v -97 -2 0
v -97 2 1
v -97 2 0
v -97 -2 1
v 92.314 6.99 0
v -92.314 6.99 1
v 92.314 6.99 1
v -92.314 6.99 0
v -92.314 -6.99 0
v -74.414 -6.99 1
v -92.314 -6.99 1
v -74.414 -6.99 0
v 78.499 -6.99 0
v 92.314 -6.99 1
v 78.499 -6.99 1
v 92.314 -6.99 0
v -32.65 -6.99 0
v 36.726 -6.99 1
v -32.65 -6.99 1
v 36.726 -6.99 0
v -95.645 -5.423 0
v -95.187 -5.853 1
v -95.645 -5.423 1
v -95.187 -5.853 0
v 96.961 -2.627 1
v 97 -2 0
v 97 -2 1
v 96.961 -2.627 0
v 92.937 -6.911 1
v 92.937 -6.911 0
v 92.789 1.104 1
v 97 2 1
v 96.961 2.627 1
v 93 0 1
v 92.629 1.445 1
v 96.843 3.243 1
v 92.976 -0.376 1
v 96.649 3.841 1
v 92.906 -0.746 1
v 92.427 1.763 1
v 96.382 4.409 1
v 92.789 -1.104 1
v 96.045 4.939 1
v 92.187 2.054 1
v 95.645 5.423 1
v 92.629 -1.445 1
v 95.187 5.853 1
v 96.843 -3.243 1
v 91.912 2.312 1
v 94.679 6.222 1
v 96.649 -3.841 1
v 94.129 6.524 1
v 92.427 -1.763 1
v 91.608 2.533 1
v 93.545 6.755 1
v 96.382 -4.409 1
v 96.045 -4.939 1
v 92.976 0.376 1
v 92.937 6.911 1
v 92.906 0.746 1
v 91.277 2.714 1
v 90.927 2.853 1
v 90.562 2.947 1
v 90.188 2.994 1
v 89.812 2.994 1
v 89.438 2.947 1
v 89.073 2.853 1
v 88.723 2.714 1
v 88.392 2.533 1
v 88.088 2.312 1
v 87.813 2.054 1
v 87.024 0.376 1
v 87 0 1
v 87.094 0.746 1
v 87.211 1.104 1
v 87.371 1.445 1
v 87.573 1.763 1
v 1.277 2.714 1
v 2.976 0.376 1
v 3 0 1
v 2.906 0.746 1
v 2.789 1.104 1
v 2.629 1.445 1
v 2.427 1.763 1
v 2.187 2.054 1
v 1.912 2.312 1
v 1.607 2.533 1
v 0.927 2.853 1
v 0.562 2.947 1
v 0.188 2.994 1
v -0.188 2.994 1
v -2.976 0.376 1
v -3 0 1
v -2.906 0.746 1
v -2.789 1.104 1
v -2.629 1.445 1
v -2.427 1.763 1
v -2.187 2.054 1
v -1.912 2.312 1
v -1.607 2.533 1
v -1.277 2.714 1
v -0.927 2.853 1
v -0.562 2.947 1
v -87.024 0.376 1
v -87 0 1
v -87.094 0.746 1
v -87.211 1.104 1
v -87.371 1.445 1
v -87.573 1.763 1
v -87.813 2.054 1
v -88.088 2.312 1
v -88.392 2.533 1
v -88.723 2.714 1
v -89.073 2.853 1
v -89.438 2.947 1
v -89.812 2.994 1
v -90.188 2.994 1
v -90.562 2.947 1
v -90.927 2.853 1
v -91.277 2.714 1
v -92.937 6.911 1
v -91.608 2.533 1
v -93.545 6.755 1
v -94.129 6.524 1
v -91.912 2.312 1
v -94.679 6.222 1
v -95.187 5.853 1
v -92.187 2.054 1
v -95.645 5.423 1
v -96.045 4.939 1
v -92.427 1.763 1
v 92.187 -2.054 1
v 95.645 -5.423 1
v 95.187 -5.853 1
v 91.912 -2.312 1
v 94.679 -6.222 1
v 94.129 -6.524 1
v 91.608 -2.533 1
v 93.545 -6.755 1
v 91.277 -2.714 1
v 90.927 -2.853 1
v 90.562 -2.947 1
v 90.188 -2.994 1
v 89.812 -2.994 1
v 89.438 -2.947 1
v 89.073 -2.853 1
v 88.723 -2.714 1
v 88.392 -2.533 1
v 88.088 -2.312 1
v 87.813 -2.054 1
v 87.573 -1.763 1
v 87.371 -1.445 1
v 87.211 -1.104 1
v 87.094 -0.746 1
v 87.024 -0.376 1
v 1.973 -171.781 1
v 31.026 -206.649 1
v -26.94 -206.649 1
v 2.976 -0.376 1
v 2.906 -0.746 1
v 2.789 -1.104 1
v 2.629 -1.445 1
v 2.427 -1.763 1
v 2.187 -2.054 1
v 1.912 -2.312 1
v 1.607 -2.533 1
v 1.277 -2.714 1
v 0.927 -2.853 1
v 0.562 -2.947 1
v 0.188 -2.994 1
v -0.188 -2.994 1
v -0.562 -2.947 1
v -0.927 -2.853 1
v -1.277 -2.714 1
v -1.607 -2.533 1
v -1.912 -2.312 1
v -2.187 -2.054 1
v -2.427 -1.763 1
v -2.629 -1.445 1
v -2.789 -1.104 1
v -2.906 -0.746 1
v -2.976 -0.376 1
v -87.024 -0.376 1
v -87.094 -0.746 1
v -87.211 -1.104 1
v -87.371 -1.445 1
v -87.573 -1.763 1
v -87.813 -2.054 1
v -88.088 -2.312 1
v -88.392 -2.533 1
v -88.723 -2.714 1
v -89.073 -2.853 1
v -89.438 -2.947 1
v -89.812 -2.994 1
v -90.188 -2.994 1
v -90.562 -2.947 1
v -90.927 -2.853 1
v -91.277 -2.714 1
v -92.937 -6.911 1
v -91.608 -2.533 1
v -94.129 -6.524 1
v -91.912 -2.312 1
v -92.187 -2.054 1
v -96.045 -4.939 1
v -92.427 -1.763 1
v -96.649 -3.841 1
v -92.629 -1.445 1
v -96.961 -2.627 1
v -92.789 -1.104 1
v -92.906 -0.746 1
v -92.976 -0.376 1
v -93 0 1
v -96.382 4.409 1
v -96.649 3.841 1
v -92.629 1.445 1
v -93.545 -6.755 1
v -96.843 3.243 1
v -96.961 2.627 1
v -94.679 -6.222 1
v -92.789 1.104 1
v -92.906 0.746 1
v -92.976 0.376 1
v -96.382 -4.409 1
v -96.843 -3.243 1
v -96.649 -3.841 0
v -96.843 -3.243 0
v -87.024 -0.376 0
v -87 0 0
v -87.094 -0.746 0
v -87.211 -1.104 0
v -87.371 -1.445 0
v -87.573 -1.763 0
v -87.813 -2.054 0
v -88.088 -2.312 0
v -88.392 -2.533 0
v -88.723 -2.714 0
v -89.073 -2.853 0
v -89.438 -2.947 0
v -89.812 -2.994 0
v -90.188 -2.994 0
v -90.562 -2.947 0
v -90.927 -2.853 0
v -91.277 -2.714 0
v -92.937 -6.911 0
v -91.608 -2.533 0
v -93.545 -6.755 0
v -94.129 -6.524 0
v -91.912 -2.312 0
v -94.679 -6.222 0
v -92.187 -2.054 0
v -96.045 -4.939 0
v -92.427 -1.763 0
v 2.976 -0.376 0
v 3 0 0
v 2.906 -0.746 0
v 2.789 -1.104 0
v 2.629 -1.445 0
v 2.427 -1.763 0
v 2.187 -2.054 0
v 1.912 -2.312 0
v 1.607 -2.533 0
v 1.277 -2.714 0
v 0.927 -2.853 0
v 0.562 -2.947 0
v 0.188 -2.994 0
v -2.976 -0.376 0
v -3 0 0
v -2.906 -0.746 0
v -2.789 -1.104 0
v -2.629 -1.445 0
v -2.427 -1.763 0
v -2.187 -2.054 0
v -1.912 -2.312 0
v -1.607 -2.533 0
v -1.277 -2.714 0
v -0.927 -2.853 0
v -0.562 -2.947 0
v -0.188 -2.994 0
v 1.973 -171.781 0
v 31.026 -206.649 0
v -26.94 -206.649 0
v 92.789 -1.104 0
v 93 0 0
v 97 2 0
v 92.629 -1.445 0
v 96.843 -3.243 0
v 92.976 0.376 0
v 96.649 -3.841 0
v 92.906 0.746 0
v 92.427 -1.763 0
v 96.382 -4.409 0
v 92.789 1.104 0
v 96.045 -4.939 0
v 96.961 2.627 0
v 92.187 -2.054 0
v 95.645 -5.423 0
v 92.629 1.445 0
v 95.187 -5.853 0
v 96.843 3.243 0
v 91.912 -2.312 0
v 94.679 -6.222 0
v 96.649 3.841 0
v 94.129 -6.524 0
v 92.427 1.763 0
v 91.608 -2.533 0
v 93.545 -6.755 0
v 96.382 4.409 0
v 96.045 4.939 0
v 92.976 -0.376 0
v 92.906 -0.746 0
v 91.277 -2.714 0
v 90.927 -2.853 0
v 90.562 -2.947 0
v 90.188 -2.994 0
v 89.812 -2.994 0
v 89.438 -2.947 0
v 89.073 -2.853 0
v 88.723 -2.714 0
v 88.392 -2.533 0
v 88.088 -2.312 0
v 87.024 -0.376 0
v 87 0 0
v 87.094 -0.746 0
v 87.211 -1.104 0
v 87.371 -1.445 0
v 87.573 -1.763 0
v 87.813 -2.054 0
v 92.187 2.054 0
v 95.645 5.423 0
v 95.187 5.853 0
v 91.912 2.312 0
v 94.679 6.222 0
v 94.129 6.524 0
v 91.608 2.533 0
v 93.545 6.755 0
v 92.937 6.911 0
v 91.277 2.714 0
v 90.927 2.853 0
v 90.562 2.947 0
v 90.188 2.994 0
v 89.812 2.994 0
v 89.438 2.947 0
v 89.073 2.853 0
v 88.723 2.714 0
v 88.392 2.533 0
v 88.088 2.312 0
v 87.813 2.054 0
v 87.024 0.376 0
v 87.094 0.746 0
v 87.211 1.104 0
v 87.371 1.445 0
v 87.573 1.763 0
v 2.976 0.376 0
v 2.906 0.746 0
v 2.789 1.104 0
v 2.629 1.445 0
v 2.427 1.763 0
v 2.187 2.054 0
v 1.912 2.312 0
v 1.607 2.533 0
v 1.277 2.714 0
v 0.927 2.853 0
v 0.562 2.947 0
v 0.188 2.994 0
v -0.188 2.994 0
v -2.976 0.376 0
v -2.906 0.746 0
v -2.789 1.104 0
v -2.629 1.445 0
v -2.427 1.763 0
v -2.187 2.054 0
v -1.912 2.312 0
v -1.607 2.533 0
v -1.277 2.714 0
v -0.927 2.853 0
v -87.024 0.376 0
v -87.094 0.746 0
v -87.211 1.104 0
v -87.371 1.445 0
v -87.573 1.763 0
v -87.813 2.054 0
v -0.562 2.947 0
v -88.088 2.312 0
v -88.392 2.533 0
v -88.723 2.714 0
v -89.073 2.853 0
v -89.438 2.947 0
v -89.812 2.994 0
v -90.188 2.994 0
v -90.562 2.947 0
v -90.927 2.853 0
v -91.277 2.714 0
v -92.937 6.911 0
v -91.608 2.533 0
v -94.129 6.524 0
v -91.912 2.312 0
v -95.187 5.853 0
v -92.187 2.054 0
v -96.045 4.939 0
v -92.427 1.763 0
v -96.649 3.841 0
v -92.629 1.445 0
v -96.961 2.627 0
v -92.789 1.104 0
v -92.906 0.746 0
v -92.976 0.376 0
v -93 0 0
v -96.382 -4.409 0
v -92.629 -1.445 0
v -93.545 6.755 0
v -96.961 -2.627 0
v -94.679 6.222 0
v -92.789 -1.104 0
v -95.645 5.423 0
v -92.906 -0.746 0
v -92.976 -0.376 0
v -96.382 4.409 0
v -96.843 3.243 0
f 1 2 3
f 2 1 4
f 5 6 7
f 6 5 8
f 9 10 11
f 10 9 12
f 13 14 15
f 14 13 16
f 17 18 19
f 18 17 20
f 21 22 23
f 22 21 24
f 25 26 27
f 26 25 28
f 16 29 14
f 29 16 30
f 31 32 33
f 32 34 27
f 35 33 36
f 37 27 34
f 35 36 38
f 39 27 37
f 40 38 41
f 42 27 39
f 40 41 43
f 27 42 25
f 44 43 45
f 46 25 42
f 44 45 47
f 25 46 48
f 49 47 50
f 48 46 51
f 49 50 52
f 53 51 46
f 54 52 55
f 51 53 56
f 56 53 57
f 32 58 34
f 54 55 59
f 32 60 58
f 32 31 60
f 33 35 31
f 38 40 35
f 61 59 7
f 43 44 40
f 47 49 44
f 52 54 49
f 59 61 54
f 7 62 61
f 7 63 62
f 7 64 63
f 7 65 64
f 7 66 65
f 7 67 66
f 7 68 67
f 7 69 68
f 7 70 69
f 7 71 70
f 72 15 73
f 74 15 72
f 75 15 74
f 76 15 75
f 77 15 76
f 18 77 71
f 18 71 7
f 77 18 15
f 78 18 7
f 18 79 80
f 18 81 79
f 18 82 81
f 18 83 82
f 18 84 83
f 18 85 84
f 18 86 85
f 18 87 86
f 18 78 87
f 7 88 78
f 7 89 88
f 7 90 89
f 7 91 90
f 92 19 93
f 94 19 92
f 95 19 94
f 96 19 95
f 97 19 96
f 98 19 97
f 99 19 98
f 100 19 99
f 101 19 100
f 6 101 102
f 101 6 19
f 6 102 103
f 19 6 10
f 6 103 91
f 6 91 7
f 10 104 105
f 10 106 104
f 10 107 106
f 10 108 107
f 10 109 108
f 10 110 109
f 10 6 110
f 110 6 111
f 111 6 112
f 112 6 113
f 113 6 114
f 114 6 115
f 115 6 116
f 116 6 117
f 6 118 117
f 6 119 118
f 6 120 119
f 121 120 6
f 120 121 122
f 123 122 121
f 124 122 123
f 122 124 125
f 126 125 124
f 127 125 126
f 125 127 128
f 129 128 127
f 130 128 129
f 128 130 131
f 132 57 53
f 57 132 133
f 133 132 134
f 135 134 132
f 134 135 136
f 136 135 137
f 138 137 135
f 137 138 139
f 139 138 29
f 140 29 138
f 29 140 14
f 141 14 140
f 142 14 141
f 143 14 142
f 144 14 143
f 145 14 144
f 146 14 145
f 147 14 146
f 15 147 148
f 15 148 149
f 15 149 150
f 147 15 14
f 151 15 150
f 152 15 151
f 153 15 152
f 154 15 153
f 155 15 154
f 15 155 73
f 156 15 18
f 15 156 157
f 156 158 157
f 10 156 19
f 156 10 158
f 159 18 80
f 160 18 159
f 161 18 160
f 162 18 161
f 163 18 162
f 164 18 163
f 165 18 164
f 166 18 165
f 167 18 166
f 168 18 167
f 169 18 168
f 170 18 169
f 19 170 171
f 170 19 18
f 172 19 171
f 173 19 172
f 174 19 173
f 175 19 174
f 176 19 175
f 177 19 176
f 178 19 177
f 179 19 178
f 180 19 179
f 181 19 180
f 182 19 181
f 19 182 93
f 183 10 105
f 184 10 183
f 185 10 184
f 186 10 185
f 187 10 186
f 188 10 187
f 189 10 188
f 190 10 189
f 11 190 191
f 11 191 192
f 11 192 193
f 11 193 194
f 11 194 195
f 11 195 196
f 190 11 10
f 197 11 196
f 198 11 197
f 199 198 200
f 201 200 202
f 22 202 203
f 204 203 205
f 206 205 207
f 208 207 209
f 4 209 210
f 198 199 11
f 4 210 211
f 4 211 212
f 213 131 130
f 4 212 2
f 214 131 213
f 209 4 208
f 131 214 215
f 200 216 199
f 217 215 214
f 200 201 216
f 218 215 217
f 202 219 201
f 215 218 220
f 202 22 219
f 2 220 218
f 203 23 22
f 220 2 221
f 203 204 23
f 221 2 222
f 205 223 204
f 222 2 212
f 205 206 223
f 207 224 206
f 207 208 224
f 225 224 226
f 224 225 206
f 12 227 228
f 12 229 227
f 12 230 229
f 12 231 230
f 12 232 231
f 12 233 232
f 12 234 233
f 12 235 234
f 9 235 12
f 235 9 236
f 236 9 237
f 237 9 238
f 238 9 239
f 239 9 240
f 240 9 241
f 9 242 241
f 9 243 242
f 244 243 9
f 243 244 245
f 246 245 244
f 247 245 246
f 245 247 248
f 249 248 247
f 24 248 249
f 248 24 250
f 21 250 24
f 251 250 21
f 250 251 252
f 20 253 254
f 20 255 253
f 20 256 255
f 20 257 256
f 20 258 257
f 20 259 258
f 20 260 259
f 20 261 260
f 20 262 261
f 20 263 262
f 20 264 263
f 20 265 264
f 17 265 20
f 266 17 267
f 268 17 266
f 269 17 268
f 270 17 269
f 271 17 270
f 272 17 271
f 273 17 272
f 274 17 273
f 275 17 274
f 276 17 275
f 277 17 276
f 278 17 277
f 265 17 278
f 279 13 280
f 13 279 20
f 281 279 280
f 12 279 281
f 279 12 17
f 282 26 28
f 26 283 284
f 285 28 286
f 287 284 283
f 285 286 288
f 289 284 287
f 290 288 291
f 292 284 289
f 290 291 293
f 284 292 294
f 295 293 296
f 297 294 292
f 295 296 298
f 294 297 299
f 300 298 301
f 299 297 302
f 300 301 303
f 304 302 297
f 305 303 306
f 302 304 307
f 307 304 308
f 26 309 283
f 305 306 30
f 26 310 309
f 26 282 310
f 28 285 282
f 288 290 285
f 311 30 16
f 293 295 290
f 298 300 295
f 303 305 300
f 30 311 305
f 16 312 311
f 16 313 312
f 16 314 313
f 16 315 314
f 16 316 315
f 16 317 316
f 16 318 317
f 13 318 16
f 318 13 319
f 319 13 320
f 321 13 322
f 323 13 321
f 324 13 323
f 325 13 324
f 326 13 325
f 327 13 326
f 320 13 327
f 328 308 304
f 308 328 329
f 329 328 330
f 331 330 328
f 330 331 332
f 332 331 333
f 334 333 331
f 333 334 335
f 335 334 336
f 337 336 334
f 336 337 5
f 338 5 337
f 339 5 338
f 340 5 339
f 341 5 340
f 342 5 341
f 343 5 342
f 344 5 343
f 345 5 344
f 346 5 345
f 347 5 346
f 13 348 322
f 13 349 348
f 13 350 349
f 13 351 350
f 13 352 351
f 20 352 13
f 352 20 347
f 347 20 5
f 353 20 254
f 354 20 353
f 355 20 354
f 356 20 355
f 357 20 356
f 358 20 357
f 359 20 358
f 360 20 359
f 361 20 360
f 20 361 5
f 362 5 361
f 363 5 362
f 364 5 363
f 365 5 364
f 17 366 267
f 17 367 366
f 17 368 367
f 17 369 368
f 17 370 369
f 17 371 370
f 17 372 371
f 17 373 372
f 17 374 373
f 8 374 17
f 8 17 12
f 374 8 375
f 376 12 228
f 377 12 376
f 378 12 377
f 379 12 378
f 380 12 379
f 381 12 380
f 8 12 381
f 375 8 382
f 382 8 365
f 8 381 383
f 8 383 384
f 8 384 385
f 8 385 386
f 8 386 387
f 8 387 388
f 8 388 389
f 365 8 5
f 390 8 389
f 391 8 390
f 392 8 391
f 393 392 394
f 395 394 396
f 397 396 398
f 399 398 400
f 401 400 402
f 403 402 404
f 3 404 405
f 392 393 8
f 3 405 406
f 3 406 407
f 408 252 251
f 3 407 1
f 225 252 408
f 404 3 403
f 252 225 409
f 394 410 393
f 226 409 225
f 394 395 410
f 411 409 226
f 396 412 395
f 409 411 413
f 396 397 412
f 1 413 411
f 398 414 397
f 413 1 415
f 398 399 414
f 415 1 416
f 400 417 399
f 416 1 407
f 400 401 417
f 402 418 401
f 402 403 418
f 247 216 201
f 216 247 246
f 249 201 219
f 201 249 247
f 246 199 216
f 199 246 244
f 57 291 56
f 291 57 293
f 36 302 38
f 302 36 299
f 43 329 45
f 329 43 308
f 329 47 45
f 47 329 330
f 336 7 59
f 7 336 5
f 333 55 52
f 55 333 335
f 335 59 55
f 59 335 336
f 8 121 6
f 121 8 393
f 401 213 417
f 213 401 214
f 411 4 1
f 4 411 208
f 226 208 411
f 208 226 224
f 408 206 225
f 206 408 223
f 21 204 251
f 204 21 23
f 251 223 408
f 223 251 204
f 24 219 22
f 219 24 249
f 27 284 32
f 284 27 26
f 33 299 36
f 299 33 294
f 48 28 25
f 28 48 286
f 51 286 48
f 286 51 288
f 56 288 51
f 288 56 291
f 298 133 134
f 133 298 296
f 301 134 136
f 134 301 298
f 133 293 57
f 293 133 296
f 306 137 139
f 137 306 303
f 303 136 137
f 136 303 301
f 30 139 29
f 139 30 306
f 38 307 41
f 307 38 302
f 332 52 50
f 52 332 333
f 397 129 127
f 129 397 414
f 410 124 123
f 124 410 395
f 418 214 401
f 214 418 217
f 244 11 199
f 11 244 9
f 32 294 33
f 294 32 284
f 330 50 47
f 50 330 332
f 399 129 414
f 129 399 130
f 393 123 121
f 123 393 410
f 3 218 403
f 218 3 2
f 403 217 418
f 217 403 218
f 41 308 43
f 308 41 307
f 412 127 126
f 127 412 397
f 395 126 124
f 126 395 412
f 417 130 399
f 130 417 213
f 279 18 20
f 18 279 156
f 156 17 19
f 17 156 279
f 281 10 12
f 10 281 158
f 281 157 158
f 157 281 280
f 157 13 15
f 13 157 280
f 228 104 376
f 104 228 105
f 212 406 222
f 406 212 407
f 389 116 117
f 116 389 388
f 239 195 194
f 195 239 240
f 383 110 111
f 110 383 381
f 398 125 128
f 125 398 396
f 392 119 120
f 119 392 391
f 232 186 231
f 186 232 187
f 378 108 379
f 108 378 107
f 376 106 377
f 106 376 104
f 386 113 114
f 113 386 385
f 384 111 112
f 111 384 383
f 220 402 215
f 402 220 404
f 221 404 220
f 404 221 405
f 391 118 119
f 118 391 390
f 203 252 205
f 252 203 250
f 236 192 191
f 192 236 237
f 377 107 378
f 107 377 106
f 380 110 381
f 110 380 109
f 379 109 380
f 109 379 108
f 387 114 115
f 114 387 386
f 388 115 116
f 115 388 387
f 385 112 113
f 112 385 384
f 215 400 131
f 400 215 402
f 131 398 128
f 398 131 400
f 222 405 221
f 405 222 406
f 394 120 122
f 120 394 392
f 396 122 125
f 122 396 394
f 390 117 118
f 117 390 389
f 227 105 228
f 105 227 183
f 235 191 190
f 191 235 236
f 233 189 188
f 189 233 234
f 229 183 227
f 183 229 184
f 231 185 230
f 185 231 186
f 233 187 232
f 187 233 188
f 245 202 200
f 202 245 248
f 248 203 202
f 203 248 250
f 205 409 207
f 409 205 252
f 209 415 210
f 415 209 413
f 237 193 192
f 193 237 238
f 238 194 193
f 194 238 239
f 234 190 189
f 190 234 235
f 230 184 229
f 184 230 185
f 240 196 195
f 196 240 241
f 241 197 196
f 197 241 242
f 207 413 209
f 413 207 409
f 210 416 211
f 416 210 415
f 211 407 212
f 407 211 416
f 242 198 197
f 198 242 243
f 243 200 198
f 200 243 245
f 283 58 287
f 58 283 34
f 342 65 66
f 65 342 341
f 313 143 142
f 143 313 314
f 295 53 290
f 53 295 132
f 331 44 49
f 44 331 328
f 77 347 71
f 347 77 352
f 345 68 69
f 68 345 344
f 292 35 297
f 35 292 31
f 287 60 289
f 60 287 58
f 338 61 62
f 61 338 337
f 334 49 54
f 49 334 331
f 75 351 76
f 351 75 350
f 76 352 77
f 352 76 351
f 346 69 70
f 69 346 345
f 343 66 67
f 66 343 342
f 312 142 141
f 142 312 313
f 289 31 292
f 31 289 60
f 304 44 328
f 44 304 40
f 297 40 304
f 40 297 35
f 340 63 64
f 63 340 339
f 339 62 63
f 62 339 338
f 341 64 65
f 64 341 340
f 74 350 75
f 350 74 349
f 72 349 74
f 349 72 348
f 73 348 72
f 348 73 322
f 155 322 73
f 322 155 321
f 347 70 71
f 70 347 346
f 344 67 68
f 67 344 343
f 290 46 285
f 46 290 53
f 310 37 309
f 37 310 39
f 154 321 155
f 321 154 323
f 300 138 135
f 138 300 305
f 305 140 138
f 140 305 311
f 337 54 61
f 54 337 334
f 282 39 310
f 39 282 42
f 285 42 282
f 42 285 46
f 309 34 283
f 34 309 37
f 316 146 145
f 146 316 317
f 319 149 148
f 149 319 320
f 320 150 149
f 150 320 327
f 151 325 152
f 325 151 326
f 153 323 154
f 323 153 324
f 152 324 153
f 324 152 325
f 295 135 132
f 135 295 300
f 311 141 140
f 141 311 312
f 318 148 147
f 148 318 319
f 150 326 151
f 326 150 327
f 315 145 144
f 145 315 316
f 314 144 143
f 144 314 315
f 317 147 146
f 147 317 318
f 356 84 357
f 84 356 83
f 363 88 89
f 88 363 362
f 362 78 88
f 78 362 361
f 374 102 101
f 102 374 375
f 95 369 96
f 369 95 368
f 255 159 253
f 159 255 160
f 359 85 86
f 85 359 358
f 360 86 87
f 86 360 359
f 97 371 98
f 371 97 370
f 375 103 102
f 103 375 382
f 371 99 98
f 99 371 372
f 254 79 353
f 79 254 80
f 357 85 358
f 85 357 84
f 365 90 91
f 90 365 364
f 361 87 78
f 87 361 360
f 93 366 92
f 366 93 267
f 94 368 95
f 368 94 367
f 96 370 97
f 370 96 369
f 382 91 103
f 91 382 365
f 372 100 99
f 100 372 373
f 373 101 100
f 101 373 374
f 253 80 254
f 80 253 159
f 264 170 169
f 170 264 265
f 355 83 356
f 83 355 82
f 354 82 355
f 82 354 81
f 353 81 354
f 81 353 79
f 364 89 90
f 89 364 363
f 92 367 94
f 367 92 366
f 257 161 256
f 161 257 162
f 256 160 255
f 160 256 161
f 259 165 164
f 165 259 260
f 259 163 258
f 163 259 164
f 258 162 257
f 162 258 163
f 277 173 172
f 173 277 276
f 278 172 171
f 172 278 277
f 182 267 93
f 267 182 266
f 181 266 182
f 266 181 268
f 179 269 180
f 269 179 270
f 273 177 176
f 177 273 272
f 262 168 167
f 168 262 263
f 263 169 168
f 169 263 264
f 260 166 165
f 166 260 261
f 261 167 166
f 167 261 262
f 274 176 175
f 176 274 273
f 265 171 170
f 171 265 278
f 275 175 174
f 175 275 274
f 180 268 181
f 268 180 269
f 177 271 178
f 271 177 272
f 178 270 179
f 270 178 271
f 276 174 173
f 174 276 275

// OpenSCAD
$fn = 50;


difference() {
	union() {
		translate(v = [0, 0, 0]) {
			rotate(a = [0, 0, 0]) {
				hull() {
					translate(v = [-92.0000000000, 2.0000000000, 0]) {
						rotate(a = [0, 0, 0]) {
							translate(v = [0, 0, 0]) {
								rotate(a = [0, 0, 0]) {
									cylinder(h = 1, r = 5);
								}
							}
						}
					}
					translate(v = [92.0000000000, 2.0000000000, 0]) {
						rotate(a = [0, 0, 0]) {
							translate(v = [0, 0, 0]) {
								rotate(a = [0, 0, 0]) {
									cylinder(h = 1, r = 5);
								}
							}
						}
					}
					translate(v = [-92.0000000000, -2.0000000000, 0]) {
						rotate(a = [0, 0, 0]) {
							translate(v = [0, 0, 0]) {
								rotate(a = [0, 0, 0]) {
									cylinder(h = 1, r = 5);
								}
							}
						}
					}
					translate(v = [92.0000000000, -2.0000000000, 0]) {
						rotate(a = [0, 0, 0]) {
							translate(v = [0, 0, 0]) {
								rotate(a = [0, 0, 0]) {
									cylinder(h = 1, r = 5);
								}
							}
						}
					}
				}
			}
		}
		translate(v = [0, 0, 0]) {
			rotate(a = [0, 0, 0]) {
				linear_extrude(height = 1) {
					text(font = "DejaVu Sans Mono:style=Bold", halign = "center", size = 209.0000000000, text = "V", valign = "top");
				}
			}
		}
	}
	union() {
		translate(v = [-90.0000000000, 0.0000000000, -125.0000000000]) {
			rotate(a = [0, 0, 0]) {
				cylinder(h = 250, r = 3.0000000000);
			}
		}
		translate(v = [90.0000000000, 0.0000000000, -125.0000000000]) {
			rotate(a = [0, 0, 0]) {
				cylinder(h = 250, r = 3.0000000000);
			}
		}
		translate(v = [90.0000000000, 0.0000000000, -125.0000000000]) {
			rotate(a = [0, 0, 0]) {
				cylinder(h = 250, r = 3.0000000000);
			}
		}
		translate(v = [0, 0, -125.0000000000]) {
			rotate(a = [0, 0, 0]) {
				cylinder(h = 250, r = 3.0000000000);
			}
		}
	}
}
